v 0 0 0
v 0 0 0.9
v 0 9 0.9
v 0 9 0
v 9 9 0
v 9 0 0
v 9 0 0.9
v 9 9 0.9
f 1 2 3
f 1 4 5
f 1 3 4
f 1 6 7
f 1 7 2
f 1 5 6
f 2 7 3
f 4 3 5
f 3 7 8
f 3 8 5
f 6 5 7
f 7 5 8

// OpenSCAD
/* Warning, this is a very basic generator with a lot of approximation 
input data : [QFN, R4X, 9x9x0.9mm, 64, , A, C04-17444A]
generated by com.zoubworld.electronics.cad.model3d.Basic
Date : Sun Feb 15 10:50:49 CET 2026
*/

//body
color("black")
translate([0,0,0])
cube([9.0,9.0,0.9], center=false);
